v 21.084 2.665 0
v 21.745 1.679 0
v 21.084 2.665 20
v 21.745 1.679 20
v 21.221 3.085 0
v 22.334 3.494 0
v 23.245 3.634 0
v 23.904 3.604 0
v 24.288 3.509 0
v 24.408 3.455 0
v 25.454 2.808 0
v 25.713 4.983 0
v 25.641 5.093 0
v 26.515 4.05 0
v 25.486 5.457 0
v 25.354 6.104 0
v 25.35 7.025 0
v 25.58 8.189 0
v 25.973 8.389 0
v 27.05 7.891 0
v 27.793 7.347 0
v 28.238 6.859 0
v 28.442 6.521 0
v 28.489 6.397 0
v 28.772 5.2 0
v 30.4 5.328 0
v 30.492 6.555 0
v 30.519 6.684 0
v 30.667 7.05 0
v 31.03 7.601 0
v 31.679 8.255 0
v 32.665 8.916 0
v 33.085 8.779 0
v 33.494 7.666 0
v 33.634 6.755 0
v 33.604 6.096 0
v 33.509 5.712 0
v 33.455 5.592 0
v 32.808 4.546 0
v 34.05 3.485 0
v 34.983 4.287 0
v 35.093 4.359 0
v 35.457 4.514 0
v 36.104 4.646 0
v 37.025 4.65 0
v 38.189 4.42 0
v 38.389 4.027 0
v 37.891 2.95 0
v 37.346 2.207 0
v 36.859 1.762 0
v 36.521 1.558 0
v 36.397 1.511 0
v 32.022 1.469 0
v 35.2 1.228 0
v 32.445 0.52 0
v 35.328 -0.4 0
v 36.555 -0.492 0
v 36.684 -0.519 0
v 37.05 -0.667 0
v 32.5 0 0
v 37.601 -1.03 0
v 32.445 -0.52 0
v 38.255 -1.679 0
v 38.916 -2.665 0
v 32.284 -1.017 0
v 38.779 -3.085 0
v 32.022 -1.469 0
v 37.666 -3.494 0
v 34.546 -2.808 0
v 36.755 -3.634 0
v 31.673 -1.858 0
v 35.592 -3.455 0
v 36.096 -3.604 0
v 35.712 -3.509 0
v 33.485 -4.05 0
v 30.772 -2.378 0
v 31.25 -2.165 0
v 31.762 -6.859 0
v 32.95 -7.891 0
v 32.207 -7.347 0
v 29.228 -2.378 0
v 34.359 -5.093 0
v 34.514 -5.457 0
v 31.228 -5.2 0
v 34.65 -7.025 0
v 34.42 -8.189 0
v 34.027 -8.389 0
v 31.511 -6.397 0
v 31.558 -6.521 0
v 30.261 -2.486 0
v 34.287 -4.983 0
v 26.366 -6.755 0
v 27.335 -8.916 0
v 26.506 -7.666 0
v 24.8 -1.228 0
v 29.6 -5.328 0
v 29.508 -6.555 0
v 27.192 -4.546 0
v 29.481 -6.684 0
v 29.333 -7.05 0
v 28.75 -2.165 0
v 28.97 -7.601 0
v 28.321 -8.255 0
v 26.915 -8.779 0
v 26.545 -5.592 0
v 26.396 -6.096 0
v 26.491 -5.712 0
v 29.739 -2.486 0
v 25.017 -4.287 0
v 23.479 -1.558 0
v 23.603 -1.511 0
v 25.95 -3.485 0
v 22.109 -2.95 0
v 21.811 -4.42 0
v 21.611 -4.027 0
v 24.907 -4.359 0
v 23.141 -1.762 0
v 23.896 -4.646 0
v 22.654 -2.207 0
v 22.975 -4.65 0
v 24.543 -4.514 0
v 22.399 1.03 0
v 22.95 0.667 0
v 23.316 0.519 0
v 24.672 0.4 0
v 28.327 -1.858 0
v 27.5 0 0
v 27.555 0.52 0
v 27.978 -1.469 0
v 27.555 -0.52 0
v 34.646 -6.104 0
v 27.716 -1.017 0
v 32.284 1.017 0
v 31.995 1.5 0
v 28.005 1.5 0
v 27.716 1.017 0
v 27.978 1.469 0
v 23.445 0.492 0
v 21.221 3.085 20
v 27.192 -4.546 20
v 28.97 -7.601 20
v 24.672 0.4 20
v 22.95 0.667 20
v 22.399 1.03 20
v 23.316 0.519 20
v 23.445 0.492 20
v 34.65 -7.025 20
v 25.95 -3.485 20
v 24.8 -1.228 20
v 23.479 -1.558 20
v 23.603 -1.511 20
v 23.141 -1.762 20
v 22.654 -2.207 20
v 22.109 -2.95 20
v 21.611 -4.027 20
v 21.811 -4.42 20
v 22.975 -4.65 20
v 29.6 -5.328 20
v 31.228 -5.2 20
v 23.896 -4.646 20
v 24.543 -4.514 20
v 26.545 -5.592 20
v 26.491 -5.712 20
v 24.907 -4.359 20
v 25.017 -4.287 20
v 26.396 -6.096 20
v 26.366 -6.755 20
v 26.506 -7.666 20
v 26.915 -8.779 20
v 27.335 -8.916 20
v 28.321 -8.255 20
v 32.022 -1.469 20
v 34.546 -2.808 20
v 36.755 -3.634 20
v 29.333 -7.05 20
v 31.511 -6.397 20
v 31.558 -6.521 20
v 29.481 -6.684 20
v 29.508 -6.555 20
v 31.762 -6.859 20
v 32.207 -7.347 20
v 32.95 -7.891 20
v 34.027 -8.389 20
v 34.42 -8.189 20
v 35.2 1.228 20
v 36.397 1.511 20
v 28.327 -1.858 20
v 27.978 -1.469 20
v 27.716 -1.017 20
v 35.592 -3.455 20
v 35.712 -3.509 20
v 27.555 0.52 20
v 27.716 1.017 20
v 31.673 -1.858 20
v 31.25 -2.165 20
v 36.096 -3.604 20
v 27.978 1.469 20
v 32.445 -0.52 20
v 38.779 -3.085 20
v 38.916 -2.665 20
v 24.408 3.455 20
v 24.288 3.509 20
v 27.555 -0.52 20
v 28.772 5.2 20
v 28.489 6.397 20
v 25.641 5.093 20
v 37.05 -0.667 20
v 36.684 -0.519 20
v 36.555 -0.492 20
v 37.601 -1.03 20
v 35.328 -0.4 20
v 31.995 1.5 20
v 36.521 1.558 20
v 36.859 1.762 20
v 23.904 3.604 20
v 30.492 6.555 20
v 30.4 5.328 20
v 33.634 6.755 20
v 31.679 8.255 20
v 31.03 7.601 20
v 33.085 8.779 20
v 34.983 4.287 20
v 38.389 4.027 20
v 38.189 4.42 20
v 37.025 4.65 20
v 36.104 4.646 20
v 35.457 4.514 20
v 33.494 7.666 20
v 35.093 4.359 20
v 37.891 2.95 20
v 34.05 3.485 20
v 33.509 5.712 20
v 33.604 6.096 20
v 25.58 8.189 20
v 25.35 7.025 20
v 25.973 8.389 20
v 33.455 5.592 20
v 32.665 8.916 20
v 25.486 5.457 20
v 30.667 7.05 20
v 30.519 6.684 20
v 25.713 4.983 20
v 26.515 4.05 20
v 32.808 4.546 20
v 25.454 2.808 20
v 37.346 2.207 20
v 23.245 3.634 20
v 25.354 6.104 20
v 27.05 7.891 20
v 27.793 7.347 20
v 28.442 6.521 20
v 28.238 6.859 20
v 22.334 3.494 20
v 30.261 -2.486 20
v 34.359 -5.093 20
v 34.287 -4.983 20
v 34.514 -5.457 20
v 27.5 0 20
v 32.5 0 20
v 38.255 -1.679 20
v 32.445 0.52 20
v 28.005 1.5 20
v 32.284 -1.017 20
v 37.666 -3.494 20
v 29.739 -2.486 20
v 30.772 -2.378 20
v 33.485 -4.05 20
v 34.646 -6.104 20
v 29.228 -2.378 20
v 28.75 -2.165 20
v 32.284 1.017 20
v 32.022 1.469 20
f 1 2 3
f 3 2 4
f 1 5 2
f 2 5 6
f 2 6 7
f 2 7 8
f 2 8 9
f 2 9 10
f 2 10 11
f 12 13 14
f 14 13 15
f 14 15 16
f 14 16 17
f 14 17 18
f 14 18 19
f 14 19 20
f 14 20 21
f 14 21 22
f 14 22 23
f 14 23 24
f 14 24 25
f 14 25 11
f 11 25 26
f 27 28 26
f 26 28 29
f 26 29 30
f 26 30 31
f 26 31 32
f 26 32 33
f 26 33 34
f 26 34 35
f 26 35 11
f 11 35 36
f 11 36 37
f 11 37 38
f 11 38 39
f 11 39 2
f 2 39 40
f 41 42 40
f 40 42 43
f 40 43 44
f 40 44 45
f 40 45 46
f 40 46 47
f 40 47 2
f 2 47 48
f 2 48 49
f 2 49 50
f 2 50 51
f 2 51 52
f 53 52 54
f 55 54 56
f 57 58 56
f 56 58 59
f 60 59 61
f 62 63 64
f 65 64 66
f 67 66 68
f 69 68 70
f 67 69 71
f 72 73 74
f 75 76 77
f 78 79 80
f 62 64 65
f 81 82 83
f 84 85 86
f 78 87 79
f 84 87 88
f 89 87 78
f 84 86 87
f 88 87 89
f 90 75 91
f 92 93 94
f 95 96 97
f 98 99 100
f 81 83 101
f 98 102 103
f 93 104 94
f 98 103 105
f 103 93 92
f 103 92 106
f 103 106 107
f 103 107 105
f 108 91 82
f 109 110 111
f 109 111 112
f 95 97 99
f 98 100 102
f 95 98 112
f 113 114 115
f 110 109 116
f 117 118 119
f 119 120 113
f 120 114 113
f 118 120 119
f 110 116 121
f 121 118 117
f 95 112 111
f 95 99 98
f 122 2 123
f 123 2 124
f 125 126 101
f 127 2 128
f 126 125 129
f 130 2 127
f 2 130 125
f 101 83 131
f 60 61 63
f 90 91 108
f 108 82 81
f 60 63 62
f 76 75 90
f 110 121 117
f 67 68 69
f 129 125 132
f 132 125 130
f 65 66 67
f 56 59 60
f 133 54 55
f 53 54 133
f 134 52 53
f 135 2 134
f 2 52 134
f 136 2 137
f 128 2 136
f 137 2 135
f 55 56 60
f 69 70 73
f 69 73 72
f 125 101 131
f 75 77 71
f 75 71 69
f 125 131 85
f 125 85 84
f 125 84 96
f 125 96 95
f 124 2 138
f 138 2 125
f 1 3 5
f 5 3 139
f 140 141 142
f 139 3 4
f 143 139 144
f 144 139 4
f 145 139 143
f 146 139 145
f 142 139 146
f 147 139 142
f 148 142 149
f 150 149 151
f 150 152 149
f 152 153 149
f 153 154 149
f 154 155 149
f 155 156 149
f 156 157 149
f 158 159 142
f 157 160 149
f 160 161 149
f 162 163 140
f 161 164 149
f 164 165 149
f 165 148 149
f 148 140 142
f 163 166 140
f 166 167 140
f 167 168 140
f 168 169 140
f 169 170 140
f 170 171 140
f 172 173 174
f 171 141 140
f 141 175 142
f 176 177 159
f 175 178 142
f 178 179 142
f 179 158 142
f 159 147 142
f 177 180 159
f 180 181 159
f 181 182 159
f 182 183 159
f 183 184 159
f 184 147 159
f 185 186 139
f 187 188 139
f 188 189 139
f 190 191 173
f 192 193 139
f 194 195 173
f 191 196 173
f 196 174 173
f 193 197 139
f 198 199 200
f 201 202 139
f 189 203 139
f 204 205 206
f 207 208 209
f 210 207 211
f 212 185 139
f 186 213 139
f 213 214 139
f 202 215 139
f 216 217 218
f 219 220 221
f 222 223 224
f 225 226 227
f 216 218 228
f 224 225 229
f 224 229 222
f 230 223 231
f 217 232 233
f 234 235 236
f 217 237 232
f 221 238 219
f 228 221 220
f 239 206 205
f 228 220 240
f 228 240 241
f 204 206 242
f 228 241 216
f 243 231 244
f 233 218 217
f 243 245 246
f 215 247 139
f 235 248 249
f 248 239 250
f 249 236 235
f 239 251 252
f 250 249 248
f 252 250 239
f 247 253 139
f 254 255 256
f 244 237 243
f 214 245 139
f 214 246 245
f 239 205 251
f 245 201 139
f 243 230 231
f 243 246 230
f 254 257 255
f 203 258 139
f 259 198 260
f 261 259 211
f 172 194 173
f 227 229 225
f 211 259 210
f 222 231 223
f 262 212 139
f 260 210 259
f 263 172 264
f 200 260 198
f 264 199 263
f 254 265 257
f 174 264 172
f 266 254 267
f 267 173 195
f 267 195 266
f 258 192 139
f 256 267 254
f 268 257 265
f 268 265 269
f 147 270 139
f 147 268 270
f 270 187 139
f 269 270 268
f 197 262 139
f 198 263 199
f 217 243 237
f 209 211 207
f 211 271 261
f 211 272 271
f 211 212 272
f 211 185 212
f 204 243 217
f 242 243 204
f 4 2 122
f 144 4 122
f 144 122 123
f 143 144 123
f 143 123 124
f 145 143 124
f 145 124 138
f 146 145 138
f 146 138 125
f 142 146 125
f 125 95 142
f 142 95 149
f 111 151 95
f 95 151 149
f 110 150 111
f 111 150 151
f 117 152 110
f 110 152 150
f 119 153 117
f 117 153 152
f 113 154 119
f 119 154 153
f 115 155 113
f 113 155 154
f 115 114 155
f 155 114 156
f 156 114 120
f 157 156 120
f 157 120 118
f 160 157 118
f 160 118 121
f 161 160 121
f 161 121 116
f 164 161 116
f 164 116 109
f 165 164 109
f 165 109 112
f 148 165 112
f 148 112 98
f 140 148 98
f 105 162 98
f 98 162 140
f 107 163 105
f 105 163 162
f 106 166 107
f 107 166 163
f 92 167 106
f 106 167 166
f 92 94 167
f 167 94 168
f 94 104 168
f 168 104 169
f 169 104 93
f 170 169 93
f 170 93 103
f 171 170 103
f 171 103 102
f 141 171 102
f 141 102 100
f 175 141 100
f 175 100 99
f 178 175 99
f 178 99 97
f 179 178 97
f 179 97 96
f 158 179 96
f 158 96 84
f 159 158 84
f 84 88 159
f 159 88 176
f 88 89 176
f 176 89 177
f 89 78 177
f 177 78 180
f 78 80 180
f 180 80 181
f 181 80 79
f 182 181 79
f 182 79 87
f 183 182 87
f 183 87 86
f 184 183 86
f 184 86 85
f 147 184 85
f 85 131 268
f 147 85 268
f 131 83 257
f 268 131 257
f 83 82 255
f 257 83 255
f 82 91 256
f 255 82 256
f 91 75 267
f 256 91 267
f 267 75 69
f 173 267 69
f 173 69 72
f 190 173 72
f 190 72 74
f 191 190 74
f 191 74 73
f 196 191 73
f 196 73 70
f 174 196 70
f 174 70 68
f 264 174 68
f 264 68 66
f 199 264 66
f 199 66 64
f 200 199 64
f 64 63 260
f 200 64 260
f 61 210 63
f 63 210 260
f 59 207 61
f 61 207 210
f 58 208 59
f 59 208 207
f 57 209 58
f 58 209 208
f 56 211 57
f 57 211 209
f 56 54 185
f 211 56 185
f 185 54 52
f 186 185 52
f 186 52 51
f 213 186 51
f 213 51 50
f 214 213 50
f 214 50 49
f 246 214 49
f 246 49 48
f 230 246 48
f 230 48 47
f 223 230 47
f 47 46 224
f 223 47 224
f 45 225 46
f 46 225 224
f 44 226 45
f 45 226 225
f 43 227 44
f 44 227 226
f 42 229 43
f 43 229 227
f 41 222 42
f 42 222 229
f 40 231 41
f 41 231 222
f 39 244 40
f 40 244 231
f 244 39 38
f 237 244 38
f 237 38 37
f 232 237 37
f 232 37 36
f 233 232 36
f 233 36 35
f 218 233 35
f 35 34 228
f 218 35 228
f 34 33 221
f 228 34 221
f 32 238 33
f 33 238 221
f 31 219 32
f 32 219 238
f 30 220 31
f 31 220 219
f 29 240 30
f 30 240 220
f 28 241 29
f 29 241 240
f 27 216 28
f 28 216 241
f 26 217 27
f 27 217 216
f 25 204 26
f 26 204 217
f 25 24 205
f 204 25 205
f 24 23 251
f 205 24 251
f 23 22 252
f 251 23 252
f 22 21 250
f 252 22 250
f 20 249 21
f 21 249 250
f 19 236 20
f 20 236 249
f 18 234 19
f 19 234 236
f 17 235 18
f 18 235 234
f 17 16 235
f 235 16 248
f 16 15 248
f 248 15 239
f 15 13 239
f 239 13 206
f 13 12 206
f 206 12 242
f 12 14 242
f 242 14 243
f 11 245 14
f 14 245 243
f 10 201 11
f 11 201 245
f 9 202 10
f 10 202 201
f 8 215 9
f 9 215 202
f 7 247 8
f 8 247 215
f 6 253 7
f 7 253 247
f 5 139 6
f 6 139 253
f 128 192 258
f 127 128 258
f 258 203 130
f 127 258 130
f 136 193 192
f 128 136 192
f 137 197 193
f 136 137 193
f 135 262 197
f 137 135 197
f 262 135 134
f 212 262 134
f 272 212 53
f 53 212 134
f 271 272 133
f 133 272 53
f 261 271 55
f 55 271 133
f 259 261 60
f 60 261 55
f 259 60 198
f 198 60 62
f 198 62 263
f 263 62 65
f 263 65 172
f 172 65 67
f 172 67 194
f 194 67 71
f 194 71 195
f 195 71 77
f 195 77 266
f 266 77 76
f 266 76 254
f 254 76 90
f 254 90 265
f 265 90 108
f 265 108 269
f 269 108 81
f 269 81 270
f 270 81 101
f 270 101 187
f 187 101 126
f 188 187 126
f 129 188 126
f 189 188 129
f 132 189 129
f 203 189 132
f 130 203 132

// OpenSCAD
// PRUSA iteration3
// NEMA 17 extruder small gear
// GNU GPL v3
// Josef Průša <iam@josefprusa.cz> and contributors
// http://www.reprap.org/wiki/Prusa_Mendel
// http://prusamendel.org


include <inc/external_gear_script.scad>;

module small_gear()
{
	translate([0,0,0])
	{

		translate ([30,0,0])
		difference(){
			rotate ([0,0,360*-1/20]) gear (number_of_teeth=8,
			circular_pitch=335,rim_thickness=20,bore_diameter=0,hub_thickness=0);


			difference(){
				translate ([0,0,-1]) cylinder(r=5/2, h=25, $fn=30);
				translate ([-5,1.5,0])cube([10,10,30]);
			}
		}
	}
}

small_gear();
